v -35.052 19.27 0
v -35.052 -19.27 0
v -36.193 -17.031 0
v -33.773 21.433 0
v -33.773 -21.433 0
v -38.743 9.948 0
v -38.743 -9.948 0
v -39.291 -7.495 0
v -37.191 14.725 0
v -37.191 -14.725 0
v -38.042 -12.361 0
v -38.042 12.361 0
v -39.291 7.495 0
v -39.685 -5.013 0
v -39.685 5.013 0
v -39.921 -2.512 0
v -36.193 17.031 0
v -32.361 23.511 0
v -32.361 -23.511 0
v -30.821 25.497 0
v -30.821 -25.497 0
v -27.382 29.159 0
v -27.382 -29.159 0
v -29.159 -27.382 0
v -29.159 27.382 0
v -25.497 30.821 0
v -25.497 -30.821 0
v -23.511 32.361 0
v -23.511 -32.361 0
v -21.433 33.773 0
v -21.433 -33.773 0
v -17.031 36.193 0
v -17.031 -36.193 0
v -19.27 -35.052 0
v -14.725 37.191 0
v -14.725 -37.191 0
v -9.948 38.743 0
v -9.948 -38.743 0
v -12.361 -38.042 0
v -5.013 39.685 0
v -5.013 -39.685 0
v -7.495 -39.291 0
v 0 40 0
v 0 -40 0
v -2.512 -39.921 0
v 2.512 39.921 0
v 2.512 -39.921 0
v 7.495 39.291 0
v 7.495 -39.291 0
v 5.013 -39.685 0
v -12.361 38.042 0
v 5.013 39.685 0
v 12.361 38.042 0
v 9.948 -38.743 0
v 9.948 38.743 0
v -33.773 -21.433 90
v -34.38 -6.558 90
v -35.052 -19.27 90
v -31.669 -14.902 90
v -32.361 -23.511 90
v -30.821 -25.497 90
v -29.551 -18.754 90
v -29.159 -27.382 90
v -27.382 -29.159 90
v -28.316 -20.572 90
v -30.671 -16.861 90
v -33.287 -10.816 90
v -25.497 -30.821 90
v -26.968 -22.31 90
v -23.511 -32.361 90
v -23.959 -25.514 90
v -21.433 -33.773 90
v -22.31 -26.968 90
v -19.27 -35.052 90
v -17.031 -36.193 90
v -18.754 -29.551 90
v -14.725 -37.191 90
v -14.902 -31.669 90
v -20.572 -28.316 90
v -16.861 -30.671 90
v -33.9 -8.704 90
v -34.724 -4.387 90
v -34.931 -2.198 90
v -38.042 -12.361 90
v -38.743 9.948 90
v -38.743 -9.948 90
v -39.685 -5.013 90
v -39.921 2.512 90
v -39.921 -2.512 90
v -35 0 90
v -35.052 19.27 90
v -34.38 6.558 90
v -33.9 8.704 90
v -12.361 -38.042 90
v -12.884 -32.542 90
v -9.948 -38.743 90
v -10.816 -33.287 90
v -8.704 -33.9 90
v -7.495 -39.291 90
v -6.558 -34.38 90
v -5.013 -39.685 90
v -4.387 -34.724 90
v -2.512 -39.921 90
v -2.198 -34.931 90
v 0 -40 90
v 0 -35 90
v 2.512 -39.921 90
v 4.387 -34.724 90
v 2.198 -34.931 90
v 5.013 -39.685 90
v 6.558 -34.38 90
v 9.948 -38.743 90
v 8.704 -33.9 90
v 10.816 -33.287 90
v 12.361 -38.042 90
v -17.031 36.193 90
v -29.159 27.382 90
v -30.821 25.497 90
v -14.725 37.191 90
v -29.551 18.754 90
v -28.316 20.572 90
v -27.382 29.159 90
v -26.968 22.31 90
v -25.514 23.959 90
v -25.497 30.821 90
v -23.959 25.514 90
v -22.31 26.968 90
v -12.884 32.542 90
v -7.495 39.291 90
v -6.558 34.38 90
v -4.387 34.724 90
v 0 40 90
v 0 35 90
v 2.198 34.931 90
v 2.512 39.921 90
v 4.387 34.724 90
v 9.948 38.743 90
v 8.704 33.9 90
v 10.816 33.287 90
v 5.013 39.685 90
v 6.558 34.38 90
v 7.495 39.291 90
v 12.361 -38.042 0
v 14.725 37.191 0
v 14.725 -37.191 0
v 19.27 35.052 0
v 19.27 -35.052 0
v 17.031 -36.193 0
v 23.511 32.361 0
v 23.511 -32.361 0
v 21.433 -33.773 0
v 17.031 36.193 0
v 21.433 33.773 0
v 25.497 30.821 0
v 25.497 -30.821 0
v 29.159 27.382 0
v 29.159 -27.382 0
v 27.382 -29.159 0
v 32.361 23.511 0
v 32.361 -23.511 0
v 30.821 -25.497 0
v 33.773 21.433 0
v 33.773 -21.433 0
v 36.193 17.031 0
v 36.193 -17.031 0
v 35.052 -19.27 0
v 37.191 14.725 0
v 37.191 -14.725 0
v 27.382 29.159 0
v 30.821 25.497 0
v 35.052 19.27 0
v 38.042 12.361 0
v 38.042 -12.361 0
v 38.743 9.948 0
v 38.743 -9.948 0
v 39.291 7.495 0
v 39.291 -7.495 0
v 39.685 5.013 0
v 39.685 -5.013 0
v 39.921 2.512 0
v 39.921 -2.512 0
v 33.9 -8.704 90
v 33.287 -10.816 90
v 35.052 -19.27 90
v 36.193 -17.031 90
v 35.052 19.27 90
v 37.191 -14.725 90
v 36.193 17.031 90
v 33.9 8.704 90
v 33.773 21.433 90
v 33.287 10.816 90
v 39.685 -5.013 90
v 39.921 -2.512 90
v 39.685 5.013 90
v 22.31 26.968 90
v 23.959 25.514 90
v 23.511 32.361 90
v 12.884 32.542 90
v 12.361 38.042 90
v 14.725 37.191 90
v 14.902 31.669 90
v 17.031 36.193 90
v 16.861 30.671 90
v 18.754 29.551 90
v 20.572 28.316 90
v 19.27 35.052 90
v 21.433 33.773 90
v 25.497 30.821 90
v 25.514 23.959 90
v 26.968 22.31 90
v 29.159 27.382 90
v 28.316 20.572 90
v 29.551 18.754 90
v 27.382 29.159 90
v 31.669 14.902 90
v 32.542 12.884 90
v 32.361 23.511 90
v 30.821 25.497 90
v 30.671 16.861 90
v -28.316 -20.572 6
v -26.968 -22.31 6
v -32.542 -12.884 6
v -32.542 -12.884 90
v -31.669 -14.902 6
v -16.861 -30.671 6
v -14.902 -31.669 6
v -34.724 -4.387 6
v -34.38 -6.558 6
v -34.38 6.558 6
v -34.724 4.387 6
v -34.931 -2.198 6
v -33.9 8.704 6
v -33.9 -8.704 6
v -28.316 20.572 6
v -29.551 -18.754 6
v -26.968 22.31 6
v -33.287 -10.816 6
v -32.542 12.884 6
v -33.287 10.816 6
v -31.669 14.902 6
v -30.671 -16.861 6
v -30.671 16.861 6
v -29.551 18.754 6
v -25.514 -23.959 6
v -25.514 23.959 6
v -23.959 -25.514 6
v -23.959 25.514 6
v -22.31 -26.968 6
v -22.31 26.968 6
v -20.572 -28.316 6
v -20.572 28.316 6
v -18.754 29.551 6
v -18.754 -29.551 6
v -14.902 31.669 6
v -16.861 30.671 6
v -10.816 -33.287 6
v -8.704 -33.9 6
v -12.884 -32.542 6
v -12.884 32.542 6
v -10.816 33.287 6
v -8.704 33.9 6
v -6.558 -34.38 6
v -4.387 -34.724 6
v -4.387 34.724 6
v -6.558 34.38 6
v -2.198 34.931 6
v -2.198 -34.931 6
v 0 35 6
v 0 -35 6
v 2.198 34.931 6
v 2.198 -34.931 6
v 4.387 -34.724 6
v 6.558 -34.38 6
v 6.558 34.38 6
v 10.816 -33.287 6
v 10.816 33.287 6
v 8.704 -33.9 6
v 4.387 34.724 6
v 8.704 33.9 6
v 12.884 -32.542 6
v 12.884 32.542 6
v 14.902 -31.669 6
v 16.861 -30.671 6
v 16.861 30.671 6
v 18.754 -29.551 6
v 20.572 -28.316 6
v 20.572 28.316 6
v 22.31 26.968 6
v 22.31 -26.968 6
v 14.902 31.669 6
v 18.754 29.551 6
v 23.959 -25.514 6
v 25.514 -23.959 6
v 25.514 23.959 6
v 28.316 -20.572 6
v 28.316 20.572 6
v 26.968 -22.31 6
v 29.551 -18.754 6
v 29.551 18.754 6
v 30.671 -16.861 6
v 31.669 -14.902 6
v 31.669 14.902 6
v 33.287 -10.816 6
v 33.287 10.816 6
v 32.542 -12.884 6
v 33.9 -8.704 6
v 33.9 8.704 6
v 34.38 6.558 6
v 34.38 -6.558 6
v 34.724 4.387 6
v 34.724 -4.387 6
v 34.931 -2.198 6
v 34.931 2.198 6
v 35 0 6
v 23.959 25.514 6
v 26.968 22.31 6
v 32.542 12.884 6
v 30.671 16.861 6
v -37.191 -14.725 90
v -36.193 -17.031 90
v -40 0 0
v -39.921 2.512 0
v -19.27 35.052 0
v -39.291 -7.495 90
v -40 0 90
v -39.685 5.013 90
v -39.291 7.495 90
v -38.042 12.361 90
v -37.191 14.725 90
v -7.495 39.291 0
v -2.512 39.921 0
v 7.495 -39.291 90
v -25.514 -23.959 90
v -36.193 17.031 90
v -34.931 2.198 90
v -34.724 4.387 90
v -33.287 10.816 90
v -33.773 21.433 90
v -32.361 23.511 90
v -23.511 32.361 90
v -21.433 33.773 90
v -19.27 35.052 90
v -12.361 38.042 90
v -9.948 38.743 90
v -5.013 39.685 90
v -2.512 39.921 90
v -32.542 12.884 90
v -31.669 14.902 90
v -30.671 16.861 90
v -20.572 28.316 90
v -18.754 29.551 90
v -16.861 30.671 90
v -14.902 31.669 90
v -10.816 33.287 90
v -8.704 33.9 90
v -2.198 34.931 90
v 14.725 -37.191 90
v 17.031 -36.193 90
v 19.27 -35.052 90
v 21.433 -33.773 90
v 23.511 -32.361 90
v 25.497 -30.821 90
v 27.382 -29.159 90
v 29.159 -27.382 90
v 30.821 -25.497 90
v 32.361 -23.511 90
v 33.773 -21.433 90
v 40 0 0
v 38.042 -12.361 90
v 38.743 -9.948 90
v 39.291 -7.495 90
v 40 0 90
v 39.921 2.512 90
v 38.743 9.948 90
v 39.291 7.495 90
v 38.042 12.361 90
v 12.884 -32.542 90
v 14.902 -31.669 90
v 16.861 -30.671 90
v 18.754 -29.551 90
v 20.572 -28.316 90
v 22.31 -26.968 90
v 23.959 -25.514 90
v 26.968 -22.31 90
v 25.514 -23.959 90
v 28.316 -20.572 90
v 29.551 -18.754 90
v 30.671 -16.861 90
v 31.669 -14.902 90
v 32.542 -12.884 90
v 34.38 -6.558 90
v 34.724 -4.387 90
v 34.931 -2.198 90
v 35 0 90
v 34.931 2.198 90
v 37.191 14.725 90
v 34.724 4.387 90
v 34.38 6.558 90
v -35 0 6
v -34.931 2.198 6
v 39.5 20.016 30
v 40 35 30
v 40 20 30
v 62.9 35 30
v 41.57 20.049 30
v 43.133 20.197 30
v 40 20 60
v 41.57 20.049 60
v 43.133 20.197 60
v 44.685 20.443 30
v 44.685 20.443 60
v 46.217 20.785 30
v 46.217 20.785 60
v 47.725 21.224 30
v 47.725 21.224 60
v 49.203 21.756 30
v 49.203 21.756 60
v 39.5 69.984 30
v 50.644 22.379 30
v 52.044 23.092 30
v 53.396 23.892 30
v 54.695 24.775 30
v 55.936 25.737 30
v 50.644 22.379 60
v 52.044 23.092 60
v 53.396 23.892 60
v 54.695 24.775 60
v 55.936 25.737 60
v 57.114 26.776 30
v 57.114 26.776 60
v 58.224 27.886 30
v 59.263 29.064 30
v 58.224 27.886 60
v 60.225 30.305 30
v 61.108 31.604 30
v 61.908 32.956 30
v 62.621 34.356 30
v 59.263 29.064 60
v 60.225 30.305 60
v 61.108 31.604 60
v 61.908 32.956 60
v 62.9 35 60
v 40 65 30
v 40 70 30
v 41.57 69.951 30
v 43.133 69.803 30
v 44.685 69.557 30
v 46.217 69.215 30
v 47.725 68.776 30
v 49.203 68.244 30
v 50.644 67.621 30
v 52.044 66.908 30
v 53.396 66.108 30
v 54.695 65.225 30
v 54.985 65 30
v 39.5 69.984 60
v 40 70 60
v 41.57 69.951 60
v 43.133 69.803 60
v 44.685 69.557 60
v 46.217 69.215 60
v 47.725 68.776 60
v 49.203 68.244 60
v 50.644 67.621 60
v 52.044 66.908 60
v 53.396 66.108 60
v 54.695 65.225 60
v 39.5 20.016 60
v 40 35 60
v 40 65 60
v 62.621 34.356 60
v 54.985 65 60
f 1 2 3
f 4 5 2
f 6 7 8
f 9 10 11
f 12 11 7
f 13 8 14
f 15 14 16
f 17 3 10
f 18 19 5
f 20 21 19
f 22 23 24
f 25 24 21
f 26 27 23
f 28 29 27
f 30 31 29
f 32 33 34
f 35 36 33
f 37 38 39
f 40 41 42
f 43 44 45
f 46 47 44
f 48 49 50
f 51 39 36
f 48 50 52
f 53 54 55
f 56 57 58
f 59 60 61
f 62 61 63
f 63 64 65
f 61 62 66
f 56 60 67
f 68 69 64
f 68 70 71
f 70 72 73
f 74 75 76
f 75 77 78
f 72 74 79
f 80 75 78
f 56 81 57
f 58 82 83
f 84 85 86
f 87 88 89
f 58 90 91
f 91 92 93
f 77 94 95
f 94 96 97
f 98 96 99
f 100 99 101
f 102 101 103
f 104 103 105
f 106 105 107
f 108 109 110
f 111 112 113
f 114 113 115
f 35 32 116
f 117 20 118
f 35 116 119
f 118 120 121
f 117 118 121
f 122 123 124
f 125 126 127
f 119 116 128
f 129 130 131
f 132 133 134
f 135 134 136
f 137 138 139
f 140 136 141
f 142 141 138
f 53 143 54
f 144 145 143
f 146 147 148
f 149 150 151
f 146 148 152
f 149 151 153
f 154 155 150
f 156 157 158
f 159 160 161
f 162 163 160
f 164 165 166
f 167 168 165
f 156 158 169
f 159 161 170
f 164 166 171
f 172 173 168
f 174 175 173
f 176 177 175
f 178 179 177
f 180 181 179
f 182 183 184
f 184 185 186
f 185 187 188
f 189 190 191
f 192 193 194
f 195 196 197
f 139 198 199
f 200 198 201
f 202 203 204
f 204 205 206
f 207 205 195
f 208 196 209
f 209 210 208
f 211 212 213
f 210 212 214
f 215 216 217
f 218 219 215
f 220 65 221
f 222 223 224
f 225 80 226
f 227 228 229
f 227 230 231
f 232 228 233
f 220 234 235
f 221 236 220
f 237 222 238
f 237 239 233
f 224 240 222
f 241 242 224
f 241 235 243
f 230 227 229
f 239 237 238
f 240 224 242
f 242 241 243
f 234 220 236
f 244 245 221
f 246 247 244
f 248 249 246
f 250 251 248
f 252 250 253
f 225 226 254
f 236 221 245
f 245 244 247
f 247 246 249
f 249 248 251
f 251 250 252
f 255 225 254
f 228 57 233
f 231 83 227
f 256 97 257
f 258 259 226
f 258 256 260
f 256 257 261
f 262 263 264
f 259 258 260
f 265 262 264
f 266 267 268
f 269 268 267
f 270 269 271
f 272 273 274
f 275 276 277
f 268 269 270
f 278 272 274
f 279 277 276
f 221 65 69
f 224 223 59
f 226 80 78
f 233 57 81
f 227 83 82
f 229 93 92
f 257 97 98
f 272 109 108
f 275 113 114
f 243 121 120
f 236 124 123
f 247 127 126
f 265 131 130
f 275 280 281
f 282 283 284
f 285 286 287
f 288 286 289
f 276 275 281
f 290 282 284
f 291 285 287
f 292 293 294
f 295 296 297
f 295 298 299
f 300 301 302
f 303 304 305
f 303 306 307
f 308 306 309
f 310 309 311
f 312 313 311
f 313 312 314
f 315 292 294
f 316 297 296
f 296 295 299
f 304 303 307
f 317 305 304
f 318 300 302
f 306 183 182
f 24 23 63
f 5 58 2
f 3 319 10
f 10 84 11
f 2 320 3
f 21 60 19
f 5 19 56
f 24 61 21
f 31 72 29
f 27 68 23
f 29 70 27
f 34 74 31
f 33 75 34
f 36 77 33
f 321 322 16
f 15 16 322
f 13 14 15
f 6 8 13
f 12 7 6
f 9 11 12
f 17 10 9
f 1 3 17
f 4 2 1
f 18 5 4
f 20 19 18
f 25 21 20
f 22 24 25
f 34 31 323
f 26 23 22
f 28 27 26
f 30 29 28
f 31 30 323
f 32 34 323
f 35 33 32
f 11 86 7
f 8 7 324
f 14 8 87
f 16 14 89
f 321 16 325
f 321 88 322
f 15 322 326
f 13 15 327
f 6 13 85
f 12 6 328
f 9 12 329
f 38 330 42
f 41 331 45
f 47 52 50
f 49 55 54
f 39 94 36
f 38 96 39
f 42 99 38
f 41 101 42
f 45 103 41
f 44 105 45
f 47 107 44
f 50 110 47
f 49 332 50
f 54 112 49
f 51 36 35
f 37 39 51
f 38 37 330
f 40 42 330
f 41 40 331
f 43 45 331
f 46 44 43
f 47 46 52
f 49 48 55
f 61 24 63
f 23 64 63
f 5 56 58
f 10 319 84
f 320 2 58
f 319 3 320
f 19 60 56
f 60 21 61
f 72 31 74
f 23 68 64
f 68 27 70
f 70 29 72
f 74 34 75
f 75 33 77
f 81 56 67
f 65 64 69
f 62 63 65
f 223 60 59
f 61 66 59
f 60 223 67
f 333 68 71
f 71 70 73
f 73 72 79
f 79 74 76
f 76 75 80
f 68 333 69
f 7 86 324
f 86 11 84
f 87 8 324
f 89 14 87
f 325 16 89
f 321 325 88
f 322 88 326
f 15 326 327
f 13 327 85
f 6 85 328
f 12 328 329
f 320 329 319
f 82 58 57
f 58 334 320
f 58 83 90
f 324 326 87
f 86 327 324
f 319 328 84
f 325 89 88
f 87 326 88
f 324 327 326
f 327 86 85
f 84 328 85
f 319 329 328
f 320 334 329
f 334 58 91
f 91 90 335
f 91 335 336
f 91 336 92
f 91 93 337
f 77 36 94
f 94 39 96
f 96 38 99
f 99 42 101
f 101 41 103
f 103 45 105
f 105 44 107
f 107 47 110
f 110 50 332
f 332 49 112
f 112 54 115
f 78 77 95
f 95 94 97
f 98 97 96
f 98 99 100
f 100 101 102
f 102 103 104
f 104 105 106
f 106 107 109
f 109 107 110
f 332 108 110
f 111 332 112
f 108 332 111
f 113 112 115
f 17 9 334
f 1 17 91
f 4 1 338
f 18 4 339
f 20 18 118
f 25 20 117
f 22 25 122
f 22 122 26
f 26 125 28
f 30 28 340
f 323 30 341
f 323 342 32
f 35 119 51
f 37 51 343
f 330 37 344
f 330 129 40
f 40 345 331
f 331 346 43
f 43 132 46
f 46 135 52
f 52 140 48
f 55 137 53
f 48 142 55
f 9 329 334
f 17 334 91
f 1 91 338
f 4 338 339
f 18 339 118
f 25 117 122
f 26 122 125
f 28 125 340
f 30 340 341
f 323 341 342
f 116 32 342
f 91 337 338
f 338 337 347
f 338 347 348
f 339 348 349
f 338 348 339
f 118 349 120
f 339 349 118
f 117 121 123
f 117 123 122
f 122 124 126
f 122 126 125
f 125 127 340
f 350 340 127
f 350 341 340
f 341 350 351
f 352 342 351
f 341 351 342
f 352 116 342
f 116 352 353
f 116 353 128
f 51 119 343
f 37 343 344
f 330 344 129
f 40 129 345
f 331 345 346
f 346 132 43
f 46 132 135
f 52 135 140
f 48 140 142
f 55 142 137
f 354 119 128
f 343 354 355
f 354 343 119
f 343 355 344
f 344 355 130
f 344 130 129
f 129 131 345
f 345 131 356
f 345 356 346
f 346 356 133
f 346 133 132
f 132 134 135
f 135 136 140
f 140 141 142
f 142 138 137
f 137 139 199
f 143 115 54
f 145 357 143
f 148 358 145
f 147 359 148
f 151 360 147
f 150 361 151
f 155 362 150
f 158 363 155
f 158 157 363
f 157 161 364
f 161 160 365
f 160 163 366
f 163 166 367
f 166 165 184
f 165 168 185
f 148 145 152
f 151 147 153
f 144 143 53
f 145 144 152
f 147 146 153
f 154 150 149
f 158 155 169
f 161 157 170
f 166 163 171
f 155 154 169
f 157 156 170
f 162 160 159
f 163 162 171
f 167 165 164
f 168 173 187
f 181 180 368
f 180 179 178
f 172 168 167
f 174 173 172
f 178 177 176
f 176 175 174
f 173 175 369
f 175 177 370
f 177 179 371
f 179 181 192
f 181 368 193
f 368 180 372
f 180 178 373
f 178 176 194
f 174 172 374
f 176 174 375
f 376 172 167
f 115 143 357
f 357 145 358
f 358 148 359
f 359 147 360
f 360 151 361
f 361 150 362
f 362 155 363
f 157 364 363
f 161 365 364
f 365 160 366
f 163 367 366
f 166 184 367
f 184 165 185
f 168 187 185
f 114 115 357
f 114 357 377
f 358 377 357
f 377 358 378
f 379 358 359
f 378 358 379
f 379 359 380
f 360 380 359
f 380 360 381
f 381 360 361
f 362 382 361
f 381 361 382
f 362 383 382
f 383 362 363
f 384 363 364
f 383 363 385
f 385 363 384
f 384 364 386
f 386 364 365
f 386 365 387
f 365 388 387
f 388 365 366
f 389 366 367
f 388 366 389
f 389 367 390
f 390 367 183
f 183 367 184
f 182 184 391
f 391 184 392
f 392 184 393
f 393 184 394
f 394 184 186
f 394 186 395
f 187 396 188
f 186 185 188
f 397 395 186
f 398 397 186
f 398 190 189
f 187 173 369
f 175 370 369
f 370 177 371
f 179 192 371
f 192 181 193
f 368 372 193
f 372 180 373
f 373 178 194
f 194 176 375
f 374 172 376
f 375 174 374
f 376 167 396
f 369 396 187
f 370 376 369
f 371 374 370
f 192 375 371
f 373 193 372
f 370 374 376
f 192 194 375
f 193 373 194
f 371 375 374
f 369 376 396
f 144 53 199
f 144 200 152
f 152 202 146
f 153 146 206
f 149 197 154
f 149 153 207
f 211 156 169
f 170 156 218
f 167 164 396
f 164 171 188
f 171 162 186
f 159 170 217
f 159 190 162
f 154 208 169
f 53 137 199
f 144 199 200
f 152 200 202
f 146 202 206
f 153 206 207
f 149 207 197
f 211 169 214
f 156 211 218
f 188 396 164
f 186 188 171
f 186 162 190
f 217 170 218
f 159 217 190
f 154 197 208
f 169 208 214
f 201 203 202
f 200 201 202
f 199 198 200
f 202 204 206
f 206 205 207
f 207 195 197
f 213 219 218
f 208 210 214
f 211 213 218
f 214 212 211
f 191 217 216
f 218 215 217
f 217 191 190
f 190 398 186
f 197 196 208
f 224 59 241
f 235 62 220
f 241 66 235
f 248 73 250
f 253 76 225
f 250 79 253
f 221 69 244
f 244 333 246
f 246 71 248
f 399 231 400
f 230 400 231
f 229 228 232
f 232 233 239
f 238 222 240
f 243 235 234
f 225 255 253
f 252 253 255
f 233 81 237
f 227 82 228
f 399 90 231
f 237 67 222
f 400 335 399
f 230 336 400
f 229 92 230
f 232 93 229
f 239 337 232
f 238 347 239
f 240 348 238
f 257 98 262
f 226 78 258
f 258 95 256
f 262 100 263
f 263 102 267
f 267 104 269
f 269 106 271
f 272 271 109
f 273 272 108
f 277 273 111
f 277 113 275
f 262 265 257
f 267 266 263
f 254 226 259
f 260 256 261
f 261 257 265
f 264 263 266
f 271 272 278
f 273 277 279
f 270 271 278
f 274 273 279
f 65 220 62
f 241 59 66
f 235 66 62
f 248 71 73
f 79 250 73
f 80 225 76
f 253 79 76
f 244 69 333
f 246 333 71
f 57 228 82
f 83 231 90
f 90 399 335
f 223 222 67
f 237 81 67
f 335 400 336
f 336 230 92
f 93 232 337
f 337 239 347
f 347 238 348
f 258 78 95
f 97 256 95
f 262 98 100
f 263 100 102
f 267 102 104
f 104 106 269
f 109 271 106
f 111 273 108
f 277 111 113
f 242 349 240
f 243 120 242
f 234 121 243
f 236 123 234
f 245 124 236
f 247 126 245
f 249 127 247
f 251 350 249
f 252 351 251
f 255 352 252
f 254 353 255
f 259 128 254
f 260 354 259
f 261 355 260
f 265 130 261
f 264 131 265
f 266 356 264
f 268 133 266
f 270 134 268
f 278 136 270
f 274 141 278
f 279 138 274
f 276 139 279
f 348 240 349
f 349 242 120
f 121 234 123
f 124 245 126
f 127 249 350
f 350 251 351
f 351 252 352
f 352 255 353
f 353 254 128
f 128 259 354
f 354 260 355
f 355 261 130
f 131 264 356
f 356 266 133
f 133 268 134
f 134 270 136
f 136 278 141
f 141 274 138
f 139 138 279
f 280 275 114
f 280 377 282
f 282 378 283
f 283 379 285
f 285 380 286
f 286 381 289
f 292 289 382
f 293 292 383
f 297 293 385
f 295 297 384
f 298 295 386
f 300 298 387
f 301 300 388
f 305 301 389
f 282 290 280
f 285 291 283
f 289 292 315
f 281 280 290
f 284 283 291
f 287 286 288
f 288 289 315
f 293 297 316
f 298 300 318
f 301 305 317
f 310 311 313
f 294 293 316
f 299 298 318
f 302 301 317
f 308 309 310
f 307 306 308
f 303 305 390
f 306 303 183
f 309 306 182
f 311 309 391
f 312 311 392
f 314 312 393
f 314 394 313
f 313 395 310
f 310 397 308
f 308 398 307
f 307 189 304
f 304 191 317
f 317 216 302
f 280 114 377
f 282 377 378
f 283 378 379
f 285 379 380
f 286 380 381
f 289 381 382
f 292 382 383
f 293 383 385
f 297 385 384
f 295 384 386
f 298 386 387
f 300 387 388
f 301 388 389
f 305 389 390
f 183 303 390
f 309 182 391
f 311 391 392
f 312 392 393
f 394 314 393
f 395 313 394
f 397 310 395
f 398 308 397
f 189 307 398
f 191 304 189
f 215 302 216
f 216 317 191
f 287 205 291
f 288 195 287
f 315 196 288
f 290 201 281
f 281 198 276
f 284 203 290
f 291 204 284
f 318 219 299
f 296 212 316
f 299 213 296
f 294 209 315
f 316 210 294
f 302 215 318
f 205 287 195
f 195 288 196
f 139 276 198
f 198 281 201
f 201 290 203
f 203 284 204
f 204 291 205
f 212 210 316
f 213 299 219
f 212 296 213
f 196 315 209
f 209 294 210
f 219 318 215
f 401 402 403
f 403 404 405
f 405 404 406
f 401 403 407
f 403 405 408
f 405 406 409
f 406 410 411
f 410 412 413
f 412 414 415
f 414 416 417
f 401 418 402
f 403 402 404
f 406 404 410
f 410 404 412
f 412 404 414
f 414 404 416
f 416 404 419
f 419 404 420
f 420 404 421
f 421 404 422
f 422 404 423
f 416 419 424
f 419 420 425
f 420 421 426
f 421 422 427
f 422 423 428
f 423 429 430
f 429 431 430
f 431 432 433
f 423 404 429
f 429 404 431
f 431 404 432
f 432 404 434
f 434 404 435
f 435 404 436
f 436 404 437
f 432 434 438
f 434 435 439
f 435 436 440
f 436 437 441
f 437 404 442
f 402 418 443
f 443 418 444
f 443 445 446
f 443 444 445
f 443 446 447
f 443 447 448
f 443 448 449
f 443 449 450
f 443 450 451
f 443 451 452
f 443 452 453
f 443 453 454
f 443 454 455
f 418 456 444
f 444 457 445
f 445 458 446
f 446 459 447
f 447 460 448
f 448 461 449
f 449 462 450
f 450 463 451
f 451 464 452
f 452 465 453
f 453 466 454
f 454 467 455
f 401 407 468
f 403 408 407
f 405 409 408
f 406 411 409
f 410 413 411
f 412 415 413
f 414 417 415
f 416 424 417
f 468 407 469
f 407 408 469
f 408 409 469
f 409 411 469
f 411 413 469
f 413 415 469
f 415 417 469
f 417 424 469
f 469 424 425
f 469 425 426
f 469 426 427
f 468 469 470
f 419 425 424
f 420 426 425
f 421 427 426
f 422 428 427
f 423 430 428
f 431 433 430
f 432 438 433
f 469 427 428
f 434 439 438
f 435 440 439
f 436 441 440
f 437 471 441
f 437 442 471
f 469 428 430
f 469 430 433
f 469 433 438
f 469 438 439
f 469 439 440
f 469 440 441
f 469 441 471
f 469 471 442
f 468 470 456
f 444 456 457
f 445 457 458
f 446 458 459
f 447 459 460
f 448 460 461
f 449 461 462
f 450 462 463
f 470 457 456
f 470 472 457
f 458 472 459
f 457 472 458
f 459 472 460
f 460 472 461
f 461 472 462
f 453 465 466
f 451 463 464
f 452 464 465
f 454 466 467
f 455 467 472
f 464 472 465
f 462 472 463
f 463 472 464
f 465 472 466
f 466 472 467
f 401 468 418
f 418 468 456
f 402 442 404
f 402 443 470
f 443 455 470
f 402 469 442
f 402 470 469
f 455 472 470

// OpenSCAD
// マグカップの設計パラメータ
mug_outer_radius = 40;
mug_inner_radius = 35;
mug_height = 90;
mug_bottom_thickness = 6;

handle_radius = 25;
handle_height = 30;
handle_width = 25; // 内側の空間の幅（X方向）
handle_thickness = 10; // 取っ手の厚み（Y方向）

$fn = 100;

// 本体
difference() {
    // 外側の円筒
    cylinder(h = mug_height, r = mug_outer_radius);
    
    // 内側の空洞（底面の厚みを考慮して上方向にずらす）
    translate([0, 0, mug_bottom_thickness])
        cylinder(h = mug_height, r = mug_inner_radius);
}

// 取っ手 (Handle)
union() {
    difference() {
        // 取っ手の外形 (D字形状)
        // Z軸方向（高さ方向）に伸びる円柱を、X=40の位置でカットして半円にする
        // これにより、X=40の面が直線（本体との接合部）、X>40の面が半円になる
        translate([40, 45, 45])
        rotate([0, 0, 0]) // Z軸方向の円柱
        cylinder(h = handle_height, r = handle_radius, center = true);
        
        // X軸のマイナス方向をカット（本体側を直線にする）
        // 39.5の位置でカットすることで、本体表面との重なりを確保しマニフォールドを維持
        cube([39.5, 100, 100]);
        
        // 取っ手の上下の余分な部分をカット（高さ30mmに制限）
        // 中心が45なので、30〜60の範囲を残す
        cube([100, 100, 100]) translate([0, -30, 0]); // 下側カット
        cube([100, 100, 100]) translate([0, 30, 60]); // 上側カット（※位置調整が必要な場合はここを調整）
        
        // 正確な高さ制限のための差分処理（より厳密な範囲指定）
        translate([0, -100, 30]) cube([100, 100, 60]); // 下側を30の高さで切り取る
        translate([0, -100, 60]) cube([100, 100, 90]); // 上側を60の高さで切り取る（実際は30-60の範囲）
        
        // 上記を整理したシンプルな高さ制限：
        // cylinder(h=30, r=25, center=true) は Z方向に 30〜60 の範囲を占める。
        // よって、追加の高さカットは不要。
        
        // 取っ手の内側の空間（指が入る穴）
        // 高さ30mm × 幅25mm の空間をくり抜く
        translate([40, 35, 30])
        cube([handle_width, handle_thickness * 2, handle_height]);
    }
}

// 修正後の構造を整理した最終コード
// 以下のブロックを統合して再定義
module final_mug() {
    difference() {
        // 本体
        cylinder(h = mug_height, r = mug_outer_radius);
        translate([0, 0, mug_bottom_thickness])
            cylinder(h = mug_height, r = mug_inner_radius);
    }

    union() {
        difference() {
            // 取っ手外形
            // Z軸方向に高さ30mm、中心を45に配置
            // X方向の半径25mmの円柱の半分（X>40の部分）
            translate([40, 45, 45])
            cylinder(h = handle_height, r = handle_radius, center = true);
            
            // 本体との接合部を直線にするためのカット
            cube([39.5, 100, 100]);
            
            // 内側の空間（指が入る穴）をくり抜く
            // 幅25mm (X方向)、高さ30mm (Z方向)
            translate([40, 35, 30])
            cube([handle_width, 30, handle_height]);
        }
    }
}

// 実行
final_mug();
